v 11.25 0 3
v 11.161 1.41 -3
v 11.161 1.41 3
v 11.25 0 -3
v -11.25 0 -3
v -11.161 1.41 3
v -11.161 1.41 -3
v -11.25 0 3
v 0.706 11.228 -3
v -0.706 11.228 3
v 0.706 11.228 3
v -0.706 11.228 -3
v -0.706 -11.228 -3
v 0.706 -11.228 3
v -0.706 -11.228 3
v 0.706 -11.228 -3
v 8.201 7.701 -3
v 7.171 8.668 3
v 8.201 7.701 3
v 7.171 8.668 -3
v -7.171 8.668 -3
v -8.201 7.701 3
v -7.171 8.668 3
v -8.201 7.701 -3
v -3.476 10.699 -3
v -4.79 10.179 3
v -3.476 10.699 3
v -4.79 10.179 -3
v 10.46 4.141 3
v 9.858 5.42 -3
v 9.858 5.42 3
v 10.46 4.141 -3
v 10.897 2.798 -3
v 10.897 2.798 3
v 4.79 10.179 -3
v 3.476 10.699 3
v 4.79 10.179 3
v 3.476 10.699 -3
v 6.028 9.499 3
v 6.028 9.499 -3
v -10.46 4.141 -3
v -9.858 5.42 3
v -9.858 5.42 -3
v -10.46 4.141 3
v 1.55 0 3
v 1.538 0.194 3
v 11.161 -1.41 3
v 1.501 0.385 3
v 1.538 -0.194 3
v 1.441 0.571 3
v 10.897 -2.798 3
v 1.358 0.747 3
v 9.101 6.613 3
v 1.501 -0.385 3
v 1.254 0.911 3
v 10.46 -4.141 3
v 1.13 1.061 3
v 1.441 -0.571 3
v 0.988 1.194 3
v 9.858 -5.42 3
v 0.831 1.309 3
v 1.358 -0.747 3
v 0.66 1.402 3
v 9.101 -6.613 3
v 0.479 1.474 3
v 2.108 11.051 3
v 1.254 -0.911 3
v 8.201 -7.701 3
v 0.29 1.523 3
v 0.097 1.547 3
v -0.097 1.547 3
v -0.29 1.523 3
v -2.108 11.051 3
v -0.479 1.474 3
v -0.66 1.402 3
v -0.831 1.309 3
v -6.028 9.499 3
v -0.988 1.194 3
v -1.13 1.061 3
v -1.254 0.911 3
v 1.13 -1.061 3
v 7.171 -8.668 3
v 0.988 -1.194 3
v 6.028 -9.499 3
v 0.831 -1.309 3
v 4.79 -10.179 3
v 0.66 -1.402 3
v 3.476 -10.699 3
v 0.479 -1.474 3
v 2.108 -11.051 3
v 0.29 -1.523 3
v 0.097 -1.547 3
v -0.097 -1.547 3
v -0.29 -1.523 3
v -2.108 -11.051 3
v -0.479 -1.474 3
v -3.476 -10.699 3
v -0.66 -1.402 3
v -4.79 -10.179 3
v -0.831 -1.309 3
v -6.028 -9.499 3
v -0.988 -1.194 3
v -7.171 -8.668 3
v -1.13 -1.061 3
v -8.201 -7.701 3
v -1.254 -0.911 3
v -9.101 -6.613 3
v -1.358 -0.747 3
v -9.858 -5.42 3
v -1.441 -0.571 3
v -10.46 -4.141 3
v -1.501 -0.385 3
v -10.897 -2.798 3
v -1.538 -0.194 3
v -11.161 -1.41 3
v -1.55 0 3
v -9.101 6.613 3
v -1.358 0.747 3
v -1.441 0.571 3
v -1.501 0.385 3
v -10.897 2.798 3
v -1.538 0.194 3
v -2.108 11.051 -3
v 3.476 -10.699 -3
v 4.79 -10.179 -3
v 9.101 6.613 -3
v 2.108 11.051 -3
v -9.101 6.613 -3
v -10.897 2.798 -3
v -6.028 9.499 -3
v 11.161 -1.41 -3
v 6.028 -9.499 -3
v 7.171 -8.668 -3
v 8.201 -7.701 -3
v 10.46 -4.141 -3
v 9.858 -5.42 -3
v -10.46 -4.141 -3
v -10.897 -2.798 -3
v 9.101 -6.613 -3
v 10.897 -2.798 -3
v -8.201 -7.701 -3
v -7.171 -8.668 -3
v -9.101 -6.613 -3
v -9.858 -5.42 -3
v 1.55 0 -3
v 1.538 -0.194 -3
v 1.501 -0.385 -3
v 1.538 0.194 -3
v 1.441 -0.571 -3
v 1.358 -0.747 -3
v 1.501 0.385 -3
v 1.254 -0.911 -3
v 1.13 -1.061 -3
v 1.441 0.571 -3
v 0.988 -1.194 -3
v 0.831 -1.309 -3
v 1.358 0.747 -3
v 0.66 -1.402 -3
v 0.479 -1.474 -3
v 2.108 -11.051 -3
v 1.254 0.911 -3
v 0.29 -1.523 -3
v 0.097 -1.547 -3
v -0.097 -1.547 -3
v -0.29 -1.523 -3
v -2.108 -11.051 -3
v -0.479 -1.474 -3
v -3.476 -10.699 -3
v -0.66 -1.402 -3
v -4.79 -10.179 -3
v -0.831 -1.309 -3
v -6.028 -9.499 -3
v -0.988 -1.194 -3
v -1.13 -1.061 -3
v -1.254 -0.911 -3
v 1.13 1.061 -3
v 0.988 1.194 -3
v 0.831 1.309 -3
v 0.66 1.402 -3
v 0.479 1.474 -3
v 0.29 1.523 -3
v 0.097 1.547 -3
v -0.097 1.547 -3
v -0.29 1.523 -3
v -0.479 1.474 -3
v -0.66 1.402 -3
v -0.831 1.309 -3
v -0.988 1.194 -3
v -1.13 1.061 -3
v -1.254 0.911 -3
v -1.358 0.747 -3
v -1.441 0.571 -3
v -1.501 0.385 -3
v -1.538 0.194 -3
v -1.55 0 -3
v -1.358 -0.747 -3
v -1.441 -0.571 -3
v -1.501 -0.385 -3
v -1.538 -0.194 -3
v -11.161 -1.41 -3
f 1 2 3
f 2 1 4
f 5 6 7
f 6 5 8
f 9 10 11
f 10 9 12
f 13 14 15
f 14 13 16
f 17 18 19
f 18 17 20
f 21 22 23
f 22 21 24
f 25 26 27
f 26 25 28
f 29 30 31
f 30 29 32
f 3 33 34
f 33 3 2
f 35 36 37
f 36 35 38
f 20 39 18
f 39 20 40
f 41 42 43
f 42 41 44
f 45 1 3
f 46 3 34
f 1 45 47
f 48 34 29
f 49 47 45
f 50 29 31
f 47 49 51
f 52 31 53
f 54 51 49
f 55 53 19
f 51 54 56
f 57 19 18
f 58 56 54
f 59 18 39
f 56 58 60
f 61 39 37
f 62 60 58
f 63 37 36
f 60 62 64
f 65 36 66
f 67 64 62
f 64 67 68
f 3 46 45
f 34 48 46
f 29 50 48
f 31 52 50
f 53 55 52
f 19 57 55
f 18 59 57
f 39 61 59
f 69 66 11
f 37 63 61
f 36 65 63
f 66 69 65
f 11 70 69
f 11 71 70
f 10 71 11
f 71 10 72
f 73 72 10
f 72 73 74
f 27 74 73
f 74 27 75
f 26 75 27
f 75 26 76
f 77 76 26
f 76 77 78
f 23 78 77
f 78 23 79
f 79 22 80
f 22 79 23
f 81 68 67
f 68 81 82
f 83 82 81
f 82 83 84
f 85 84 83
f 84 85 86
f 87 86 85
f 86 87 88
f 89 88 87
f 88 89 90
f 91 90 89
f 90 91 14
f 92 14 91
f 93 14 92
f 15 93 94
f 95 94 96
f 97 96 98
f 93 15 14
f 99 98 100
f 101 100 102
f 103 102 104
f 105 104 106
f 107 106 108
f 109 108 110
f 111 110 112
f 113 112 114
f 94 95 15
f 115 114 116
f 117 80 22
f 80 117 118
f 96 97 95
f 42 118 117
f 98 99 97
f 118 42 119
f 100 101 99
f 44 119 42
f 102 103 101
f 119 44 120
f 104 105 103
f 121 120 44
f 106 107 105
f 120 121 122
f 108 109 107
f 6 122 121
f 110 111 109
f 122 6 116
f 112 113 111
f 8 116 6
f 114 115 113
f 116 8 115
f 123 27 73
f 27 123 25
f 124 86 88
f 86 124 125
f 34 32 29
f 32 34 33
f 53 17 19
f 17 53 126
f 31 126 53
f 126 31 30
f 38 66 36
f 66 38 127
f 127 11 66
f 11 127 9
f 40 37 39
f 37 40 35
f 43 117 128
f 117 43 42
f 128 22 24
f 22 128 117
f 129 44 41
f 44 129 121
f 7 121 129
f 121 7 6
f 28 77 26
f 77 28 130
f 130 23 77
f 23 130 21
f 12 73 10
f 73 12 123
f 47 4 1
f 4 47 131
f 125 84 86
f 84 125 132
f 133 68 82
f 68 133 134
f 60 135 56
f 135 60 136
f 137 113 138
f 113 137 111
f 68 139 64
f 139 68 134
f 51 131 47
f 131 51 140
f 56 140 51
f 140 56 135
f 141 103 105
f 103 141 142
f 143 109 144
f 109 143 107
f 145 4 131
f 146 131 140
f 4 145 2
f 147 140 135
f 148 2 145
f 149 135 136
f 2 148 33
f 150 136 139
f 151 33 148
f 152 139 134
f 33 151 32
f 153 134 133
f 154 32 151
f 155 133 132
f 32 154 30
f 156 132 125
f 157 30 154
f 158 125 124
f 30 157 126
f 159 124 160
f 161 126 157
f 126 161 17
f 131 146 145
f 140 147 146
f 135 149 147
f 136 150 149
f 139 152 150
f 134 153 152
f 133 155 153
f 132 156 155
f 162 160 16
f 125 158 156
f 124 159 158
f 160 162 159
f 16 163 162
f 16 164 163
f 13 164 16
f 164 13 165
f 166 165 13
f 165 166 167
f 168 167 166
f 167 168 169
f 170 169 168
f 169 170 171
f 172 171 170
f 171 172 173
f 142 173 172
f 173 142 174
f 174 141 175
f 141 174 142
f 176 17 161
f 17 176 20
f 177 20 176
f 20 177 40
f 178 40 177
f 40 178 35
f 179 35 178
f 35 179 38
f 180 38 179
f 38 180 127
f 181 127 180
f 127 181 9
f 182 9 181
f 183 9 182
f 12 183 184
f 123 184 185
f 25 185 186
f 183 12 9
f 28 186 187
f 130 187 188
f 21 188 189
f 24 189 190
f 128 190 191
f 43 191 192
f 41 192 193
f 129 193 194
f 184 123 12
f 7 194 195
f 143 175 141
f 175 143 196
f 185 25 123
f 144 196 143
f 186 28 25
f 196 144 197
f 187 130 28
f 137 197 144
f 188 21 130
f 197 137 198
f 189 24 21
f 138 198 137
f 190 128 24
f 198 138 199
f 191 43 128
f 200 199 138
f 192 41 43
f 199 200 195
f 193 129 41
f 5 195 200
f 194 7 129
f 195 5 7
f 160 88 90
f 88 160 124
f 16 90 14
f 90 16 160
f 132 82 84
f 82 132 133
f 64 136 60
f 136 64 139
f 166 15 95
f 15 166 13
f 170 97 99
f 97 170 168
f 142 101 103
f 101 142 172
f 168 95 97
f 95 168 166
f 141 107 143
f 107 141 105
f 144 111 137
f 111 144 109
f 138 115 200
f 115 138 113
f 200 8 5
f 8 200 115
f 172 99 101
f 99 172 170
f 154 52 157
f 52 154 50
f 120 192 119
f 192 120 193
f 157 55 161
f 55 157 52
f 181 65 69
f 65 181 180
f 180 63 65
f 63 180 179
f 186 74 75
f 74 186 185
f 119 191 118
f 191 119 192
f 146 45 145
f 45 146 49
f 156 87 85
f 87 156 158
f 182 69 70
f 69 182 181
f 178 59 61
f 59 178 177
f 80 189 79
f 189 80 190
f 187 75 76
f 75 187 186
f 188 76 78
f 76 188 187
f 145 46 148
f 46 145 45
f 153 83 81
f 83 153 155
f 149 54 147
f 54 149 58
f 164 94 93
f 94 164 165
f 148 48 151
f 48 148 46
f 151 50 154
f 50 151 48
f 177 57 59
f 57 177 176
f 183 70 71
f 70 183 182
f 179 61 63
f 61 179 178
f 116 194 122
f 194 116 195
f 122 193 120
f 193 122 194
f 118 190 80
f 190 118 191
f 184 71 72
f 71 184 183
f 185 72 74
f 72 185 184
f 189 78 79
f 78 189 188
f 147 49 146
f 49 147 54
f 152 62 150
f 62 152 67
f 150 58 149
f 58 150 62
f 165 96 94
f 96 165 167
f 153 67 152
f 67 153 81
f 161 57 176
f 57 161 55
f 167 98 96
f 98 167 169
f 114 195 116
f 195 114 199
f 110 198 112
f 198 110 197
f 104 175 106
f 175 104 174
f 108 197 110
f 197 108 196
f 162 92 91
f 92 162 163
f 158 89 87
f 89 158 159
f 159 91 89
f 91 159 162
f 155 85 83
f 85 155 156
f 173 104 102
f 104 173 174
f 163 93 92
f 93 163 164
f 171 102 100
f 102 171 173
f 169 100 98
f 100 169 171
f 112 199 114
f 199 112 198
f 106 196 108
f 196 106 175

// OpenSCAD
$fn = 50;


difference() {
	union() {
		translate(v = [0, 0, -3.0000000000]) {
			cylinder(h = 6, r = 11.2500000000);
		}
	}
	union() {
		translate(v = [0, 0, -100.0000000000]) {
			cylinder(h = 200, r = 1.5500000000);
		}
	}
}
